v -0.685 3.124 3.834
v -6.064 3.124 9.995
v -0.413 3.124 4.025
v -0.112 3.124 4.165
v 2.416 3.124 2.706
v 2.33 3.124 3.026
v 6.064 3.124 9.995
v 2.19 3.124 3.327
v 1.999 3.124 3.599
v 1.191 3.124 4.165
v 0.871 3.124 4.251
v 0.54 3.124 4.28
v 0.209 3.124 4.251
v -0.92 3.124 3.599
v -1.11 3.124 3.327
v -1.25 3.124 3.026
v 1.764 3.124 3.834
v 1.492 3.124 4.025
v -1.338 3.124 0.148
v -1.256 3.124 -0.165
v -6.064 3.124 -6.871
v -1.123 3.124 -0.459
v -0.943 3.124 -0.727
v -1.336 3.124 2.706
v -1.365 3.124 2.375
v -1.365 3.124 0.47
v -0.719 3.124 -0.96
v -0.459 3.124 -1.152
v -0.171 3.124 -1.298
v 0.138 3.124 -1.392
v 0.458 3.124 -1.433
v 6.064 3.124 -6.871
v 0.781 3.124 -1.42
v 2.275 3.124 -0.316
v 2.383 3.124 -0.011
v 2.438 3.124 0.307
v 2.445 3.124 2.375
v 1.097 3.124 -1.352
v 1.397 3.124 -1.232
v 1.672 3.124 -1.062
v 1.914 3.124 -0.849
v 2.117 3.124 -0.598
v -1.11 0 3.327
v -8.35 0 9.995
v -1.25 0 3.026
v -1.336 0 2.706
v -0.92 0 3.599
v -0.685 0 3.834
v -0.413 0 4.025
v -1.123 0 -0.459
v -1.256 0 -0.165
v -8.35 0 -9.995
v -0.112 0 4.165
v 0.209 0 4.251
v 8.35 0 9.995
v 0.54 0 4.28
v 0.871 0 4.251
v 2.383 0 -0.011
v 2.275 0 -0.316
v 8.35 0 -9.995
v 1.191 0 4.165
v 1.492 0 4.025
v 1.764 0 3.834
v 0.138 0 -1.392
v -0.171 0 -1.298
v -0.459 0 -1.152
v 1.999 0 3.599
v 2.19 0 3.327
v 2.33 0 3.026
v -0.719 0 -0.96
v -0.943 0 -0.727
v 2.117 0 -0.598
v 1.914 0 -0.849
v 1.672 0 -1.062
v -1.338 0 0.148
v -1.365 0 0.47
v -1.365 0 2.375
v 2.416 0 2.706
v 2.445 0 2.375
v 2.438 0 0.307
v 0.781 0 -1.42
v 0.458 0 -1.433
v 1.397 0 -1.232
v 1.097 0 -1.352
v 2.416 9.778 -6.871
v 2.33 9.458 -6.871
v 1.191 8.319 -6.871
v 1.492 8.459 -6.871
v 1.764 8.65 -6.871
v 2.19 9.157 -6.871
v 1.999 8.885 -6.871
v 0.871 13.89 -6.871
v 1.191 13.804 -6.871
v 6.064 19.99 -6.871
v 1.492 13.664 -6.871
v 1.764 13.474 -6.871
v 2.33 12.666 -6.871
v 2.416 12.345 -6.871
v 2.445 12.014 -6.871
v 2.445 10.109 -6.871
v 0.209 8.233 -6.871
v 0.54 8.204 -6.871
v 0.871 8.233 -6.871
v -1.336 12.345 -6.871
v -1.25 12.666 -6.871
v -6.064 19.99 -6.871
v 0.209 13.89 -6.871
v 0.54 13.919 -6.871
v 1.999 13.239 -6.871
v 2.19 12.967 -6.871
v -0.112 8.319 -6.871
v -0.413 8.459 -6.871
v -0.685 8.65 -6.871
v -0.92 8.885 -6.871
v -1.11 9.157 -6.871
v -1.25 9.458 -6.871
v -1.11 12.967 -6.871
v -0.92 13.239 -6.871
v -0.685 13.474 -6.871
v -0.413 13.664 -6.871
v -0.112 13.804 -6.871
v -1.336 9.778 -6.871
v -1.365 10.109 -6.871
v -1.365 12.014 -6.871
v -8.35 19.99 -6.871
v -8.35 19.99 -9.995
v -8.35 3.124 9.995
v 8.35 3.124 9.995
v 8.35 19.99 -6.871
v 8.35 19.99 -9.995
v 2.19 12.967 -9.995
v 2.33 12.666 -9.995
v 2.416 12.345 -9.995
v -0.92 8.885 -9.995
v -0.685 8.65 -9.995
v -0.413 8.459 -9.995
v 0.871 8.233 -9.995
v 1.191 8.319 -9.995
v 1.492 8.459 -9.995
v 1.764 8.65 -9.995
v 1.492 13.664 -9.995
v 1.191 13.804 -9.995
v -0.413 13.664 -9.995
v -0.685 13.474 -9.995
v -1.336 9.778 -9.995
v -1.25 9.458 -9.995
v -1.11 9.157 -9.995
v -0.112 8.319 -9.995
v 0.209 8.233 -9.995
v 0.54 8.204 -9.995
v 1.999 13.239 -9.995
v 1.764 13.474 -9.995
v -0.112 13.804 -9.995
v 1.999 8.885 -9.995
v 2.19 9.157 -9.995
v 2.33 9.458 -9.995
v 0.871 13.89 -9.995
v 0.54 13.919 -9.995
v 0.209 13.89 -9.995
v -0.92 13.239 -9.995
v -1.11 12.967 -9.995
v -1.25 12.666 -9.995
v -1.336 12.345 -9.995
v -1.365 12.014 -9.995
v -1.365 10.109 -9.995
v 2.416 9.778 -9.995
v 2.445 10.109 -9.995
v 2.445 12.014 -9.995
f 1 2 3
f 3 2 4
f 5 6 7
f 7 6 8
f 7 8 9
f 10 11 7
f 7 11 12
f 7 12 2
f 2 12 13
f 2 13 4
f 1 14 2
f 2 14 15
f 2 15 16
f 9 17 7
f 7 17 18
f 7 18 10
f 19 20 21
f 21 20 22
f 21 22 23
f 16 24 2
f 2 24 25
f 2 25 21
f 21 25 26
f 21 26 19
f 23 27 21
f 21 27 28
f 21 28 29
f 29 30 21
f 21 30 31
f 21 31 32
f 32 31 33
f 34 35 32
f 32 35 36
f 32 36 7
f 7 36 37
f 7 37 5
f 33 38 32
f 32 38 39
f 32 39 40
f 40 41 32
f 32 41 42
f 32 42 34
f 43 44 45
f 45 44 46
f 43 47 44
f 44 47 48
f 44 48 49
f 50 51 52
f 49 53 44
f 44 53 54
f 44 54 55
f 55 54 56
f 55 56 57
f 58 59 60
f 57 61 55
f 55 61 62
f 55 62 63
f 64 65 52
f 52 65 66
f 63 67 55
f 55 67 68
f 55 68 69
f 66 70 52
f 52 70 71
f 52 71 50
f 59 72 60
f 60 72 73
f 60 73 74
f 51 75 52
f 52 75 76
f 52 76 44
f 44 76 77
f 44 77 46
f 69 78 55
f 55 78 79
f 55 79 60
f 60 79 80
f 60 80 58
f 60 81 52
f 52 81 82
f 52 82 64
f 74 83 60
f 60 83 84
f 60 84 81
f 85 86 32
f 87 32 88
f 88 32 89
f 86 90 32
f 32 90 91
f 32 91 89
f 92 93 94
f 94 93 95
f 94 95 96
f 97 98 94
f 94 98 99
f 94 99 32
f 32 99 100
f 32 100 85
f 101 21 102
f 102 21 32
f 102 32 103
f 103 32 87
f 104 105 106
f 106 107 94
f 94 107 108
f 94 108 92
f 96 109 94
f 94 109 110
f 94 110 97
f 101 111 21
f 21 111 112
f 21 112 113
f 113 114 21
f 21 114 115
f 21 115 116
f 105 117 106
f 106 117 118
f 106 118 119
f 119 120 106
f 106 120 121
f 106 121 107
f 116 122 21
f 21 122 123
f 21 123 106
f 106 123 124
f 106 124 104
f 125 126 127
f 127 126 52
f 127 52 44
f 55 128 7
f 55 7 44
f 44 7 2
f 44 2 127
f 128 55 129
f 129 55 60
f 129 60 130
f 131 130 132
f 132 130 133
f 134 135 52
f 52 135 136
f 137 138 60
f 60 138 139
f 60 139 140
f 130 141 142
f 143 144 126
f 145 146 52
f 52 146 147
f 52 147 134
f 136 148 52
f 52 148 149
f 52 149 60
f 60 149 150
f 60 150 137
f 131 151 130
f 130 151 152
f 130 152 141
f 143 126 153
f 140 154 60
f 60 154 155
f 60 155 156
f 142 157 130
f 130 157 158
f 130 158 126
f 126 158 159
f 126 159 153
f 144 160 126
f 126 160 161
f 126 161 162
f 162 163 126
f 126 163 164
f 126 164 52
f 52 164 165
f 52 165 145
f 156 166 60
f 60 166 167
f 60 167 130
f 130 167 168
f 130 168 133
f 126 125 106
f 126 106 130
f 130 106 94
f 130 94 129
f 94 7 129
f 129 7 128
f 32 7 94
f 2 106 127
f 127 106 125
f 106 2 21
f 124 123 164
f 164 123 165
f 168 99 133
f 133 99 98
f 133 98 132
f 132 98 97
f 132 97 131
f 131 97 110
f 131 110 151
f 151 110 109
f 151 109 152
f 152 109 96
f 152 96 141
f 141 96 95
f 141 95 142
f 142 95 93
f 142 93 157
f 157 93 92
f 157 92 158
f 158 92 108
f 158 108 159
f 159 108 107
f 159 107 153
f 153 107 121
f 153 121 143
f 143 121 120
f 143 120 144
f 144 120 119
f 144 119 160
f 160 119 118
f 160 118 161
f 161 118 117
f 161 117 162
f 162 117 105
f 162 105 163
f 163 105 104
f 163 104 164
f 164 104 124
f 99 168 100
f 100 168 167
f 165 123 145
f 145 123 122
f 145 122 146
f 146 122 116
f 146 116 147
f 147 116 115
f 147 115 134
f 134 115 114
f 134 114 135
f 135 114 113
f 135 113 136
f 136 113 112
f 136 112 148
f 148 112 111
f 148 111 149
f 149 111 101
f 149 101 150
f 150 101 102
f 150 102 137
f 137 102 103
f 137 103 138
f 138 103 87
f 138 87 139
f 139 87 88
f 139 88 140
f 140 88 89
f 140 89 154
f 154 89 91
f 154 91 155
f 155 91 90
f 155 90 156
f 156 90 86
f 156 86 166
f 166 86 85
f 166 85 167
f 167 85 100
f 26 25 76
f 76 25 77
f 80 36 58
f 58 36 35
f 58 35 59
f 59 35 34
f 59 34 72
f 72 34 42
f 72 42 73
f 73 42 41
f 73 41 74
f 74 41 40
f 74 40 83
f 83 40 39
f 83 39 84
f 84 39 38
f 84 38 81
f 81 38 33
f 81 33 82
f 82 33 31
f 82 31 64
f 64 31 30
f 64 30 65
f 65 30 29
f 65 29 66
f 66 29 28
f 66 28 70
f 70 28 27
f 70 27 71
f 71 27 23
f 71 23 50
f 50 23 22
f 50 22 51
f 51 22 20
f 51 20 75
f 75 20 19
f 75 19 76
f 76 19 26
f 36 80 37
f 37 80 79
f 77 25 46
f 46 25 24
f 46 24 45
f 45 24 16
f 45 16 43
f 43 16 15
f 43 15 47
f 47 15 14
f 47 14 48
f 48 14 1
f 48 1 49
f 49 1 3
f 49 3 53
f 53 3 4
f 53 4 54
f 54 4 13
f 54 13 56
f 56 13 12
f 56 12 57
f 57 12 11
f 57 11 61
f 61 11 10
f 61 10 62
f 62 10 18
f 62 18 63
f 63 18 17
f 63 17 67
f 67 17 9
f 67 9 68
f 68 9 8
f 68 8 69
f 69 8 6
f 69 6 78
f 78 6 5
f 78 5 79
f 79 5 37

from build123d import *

# Parameters (mm, degrees)
SKETCH1_W           = 16.7005
SKETCH1_H           = 19.9898
BOSS_EXTRUDE1_DEPTH = 3.1242
SKETCH3_W           = 16.7005
SKETCH3_H           = 3.1242
BOSS_EXTRUDE2_DEPTH = 19.9898
BOSS_EXTRUDE3_DEPTH = 2.286
BOSS_EXTRUDE4_DEPTH = 2.286
CUT_EXTRUDE1_REACH  = 29.455
SKETCH6_R           = 1.905
CUT_EXTRUDE2_START  = -3.1242
CUT_EXTRUDE2_DEPTH  = 3.1242


# Read off the part's stored shape, not the designer's step: Cut-Extrude2
with BuildPart() as part:
    # Sketch1 → Boss-Extrude1 (new body)
    with BuildSketch(Plane(origin=(0, 0, 0), x_dir=(1, 0, 0), z_dir=(0, 1, 0))):
        Rectangle(SKETCH1_W, SKETCH1_H)
    extrude(amount=BOSS_EXTRUDE1_DEPTH)

    # Sketch3 → Boss-Extrude2 (add)
    with BuildSketch(Plane.XZ):
        with Locations((0, -8.4328)):
            Rectangle(SKETCH3_W, SKETCH3_H)
    extrude(amount=-BOSS_EXTRUDE2_DEPTH)

    # Sketch4 → Boss-Extrude3 (add)
    with BuildSketch(Plane(origin=(8.35025, 0, 0), x_dir=(0, 0, -1), z_dir=(1, 0, 0))):
        Polygon((6.8707, 19.9898), (-9.9949, 3.1242), (6.8707, 3.1242), align=None)
    extrude(amount=-BOSS_EXTRUDE3_DEPTH)

    # Sketch5 → Boss-Extrude4 (add)
    with BuildSketch(Plane.ZY.offset(8.35025)):
        Polygon((-6.8707, 19.9898), (9.9949, 3.1242), (-6.8707, 3.1242), align=None)
    extrude(amount=-BOSS_EXTRUDE4_DEPTH)

    # Sketch6 → Cut-Extrude1 (cut, up to next)
    with BuildSketch(Plane.XY.offset(-6.8707), mode=Mode.PRIVATE) as cut_extrude1_sk1:
        with Locations((0.53975, 10.1092)):
            Circle(SKETCH6_R)
    cut_extrude1_tool1 = extrude(cut_extrude1_sk1.sketch, amount=-CUT_EXTRUDE1_REACH, mode=Mode.PRIVATE) & part.part
    # Sketch6 → Cut-Extrude1 (cut, up to next)
    with BuildSketch(Plane.XY.offset(-6.8707), mode=Mode.PRIVATE) as cut_extrude1_sk2:
        with Locations((0.53975, 12.0142)):
            Circle(SKETCH6_R)
    cut_extrude1_tool2 = extrude(cut_extrude1_sk2.sketch, amount=-CUT_EXTRUDE1_REACH, mode=Mode.PRIVATE) & part.part
    # Sketch6 → Cut-Extrude1 (cut, up to next)
    with BuildSketch(Plane.XY.offset(-6.8707), mode=Mode.PRIVATE) as cut_extrude1_sk3:
        with BuildLine():
            Line((2.44475, 10.1092), (2.44475, 12.0142))
            ThreePointArc((2.44475, 12.0142), (2.379838699, 11.521149719), (2.189528394, 11.0617))
            ThreePointArc((2.189528394, 11.0617), (2.379838699, 10.602250281), (2.44475, 10.1092))
        make_face()
    cut_extrude1_tool3 = extrude(cut_extrude1_sk3.sketch, amount=-CUT_EXTRUDE1_REACH, mode=Mode.PRIVATE) & part.part
    # Sketch6 → Cut-Extrude1 (cut, up to next)
    with BuildSketch(Plane.XY.offset(-6.8707), mode=Mode.PRIVATE) as cut_extrude1_sk4:
        with Locations((0.53975, 12.0142)):
            Circle(SKETCH6_R)
    cut_extrude1_tool4 = extrude(cut_extrude1_sk4.sketch, amount=-CUT_EXTRUDE1_REACH, mode=Mode.PRIVATE) & part.part
    # Sketch6 → Cut-Extrude1 (cut, up to next)
    with BuildSketch(Plane.XY.offset(-6.8707), mode=Mode.PRIVATE) as cut_extrude1_sk5:
        with Locations((0.53975, 10.1092)):
            Circle(SKETCH6_R)
    cut_extrude1_tool5 = extrude(cut_extrude1_sk5.sketch, amount=-CUT_EXTRUDE1_REACH, mode=Mode.PRIVATE) & part.part
    # Sketch6 → Cut-Extrude1 (cut, up to next)
    with BuildSketch(Plane.XY.offset(-6.8707), mode=Mode.PRIVATE) as cut_extrude1_sk6:
        with BuildLine():
            ThreePointArc((-1.110028394, 11.0617), (-1.300338699, 11.521149719), (-1.36525, 12.0142))
            Line((-1.36525, 12.0142), (-1.36525, 10.1092))
            ThreePointArc((-1.36525, 10.1092), (-1.300338699, 10.602250281), (-1.110028394, 11.0617))
        make_face()
    cut_extrude1_tool6 = extrude(cut_extrude1_sk6.sketch, amount=-CUT_EXTRUDE1_REACH, mode=Mode.PRIVATE) & part.part
    # Sketch6 → Cut-Extrude1 (cut, up to next)
    with BuildSketch(Plane.XY.offset(-6.8707), mode=Mode.PRIVATE) as cut_extrude1_sk7:
        with Locations((0.53975, 10.1092)):
            Circle(SKETCH6_R)
    cut_extrude1_tool7 = extrude(cut_extrude1_sk7.sketch, amount=-CUT_EXTRUDE1_REACH, mode=Mode.PRIVATE) & part.part
    # Sketch6 → Cut-Extrude1 (cut, up to next)
    with BuildSketch(Plane.XY.offset(-6.8707), mode=Mode.PRIVATE) as cut_extrude1_sk8:
        with Locations((0.53975, 12.0142)):
            Circle(SKETCH6_R)
    cut_extrude1_tool8 = extrude(cut_extrude1_sk8.sketch, amount=-CUT_EXTRUDE1_REACH, mode=Mode.PRIVATE) & part.part
    add(cut_extrude1_tool1.solids().sort_by_distance((0.53975, 10.1092, -6.8707))[0], mode=Mode.SUBTRACT)
    add(cut_extrude1_tool2.solids().sort_by_distance((0.53975, 12.0142, -6.8707))[0], mode=Mode.SUBTRACT)
    add(cut_extrude1_tool3.solids().sort_by_distance((2.369151, 11.0617, -6.8707))[0], mode=Mode.SUBTRACT)
    add(cut_extrude1_tool4.solids().sort_by_distance((0.53975, 12.0142, -6.8707))[0], mode=Mode.SUBTRACT)
    add(cut_extrude1_tool5.solids().sort_by_distance((0.53975, 10.1092, -6.8707))[0], mode=Mode.SUBTRACT)
    add(cut_extrude1_tool6.solids().sort_by_distance((-1.289651, 11.0617, -6.8707))[0], mode=Mode.SUBTRACT)
    add(cut_extrude1_tool7.solids().sort_by_distance((0.53975, 10.1092, -6.8707))[0], mode=Mode.SUBTRACT)
    add(cut_extrude1_tool8.solids().sort_by_distance((0.53975, 12.0142, -6.8707))[0], mode=Mode.SUBTRACT)

    # Cut-Extrude2 outline → Cut-Extrude2 (cut)
    with BuildSketch(Plane(origin=(0, 3.1242, 0), x_dir=(1, 0, 0), z_dir=(0, 1, 0)).offset(CUT_EXTRUDE2_START)):
        with BuildLine():
            Line((-1.36525, -0.4699), (-1.36525, -2.3749))
            ThreePointArc((-1.36525, -2.3749), (0.53975, -4.2799), (2.44475, -2.3749))
            Line((2.44475, -2.3749), (2.437778565, -0.307073202))
            ThreePointArc((2.437778565, -0.307073202), (0.458262015, 1.433356343), (-1.36525, -0.4699))
        make_face()
    extrude(amount=CUT_EXTRUDE2_DEPTH, mode=Mode.SUBTRACT)


solid = part.part
